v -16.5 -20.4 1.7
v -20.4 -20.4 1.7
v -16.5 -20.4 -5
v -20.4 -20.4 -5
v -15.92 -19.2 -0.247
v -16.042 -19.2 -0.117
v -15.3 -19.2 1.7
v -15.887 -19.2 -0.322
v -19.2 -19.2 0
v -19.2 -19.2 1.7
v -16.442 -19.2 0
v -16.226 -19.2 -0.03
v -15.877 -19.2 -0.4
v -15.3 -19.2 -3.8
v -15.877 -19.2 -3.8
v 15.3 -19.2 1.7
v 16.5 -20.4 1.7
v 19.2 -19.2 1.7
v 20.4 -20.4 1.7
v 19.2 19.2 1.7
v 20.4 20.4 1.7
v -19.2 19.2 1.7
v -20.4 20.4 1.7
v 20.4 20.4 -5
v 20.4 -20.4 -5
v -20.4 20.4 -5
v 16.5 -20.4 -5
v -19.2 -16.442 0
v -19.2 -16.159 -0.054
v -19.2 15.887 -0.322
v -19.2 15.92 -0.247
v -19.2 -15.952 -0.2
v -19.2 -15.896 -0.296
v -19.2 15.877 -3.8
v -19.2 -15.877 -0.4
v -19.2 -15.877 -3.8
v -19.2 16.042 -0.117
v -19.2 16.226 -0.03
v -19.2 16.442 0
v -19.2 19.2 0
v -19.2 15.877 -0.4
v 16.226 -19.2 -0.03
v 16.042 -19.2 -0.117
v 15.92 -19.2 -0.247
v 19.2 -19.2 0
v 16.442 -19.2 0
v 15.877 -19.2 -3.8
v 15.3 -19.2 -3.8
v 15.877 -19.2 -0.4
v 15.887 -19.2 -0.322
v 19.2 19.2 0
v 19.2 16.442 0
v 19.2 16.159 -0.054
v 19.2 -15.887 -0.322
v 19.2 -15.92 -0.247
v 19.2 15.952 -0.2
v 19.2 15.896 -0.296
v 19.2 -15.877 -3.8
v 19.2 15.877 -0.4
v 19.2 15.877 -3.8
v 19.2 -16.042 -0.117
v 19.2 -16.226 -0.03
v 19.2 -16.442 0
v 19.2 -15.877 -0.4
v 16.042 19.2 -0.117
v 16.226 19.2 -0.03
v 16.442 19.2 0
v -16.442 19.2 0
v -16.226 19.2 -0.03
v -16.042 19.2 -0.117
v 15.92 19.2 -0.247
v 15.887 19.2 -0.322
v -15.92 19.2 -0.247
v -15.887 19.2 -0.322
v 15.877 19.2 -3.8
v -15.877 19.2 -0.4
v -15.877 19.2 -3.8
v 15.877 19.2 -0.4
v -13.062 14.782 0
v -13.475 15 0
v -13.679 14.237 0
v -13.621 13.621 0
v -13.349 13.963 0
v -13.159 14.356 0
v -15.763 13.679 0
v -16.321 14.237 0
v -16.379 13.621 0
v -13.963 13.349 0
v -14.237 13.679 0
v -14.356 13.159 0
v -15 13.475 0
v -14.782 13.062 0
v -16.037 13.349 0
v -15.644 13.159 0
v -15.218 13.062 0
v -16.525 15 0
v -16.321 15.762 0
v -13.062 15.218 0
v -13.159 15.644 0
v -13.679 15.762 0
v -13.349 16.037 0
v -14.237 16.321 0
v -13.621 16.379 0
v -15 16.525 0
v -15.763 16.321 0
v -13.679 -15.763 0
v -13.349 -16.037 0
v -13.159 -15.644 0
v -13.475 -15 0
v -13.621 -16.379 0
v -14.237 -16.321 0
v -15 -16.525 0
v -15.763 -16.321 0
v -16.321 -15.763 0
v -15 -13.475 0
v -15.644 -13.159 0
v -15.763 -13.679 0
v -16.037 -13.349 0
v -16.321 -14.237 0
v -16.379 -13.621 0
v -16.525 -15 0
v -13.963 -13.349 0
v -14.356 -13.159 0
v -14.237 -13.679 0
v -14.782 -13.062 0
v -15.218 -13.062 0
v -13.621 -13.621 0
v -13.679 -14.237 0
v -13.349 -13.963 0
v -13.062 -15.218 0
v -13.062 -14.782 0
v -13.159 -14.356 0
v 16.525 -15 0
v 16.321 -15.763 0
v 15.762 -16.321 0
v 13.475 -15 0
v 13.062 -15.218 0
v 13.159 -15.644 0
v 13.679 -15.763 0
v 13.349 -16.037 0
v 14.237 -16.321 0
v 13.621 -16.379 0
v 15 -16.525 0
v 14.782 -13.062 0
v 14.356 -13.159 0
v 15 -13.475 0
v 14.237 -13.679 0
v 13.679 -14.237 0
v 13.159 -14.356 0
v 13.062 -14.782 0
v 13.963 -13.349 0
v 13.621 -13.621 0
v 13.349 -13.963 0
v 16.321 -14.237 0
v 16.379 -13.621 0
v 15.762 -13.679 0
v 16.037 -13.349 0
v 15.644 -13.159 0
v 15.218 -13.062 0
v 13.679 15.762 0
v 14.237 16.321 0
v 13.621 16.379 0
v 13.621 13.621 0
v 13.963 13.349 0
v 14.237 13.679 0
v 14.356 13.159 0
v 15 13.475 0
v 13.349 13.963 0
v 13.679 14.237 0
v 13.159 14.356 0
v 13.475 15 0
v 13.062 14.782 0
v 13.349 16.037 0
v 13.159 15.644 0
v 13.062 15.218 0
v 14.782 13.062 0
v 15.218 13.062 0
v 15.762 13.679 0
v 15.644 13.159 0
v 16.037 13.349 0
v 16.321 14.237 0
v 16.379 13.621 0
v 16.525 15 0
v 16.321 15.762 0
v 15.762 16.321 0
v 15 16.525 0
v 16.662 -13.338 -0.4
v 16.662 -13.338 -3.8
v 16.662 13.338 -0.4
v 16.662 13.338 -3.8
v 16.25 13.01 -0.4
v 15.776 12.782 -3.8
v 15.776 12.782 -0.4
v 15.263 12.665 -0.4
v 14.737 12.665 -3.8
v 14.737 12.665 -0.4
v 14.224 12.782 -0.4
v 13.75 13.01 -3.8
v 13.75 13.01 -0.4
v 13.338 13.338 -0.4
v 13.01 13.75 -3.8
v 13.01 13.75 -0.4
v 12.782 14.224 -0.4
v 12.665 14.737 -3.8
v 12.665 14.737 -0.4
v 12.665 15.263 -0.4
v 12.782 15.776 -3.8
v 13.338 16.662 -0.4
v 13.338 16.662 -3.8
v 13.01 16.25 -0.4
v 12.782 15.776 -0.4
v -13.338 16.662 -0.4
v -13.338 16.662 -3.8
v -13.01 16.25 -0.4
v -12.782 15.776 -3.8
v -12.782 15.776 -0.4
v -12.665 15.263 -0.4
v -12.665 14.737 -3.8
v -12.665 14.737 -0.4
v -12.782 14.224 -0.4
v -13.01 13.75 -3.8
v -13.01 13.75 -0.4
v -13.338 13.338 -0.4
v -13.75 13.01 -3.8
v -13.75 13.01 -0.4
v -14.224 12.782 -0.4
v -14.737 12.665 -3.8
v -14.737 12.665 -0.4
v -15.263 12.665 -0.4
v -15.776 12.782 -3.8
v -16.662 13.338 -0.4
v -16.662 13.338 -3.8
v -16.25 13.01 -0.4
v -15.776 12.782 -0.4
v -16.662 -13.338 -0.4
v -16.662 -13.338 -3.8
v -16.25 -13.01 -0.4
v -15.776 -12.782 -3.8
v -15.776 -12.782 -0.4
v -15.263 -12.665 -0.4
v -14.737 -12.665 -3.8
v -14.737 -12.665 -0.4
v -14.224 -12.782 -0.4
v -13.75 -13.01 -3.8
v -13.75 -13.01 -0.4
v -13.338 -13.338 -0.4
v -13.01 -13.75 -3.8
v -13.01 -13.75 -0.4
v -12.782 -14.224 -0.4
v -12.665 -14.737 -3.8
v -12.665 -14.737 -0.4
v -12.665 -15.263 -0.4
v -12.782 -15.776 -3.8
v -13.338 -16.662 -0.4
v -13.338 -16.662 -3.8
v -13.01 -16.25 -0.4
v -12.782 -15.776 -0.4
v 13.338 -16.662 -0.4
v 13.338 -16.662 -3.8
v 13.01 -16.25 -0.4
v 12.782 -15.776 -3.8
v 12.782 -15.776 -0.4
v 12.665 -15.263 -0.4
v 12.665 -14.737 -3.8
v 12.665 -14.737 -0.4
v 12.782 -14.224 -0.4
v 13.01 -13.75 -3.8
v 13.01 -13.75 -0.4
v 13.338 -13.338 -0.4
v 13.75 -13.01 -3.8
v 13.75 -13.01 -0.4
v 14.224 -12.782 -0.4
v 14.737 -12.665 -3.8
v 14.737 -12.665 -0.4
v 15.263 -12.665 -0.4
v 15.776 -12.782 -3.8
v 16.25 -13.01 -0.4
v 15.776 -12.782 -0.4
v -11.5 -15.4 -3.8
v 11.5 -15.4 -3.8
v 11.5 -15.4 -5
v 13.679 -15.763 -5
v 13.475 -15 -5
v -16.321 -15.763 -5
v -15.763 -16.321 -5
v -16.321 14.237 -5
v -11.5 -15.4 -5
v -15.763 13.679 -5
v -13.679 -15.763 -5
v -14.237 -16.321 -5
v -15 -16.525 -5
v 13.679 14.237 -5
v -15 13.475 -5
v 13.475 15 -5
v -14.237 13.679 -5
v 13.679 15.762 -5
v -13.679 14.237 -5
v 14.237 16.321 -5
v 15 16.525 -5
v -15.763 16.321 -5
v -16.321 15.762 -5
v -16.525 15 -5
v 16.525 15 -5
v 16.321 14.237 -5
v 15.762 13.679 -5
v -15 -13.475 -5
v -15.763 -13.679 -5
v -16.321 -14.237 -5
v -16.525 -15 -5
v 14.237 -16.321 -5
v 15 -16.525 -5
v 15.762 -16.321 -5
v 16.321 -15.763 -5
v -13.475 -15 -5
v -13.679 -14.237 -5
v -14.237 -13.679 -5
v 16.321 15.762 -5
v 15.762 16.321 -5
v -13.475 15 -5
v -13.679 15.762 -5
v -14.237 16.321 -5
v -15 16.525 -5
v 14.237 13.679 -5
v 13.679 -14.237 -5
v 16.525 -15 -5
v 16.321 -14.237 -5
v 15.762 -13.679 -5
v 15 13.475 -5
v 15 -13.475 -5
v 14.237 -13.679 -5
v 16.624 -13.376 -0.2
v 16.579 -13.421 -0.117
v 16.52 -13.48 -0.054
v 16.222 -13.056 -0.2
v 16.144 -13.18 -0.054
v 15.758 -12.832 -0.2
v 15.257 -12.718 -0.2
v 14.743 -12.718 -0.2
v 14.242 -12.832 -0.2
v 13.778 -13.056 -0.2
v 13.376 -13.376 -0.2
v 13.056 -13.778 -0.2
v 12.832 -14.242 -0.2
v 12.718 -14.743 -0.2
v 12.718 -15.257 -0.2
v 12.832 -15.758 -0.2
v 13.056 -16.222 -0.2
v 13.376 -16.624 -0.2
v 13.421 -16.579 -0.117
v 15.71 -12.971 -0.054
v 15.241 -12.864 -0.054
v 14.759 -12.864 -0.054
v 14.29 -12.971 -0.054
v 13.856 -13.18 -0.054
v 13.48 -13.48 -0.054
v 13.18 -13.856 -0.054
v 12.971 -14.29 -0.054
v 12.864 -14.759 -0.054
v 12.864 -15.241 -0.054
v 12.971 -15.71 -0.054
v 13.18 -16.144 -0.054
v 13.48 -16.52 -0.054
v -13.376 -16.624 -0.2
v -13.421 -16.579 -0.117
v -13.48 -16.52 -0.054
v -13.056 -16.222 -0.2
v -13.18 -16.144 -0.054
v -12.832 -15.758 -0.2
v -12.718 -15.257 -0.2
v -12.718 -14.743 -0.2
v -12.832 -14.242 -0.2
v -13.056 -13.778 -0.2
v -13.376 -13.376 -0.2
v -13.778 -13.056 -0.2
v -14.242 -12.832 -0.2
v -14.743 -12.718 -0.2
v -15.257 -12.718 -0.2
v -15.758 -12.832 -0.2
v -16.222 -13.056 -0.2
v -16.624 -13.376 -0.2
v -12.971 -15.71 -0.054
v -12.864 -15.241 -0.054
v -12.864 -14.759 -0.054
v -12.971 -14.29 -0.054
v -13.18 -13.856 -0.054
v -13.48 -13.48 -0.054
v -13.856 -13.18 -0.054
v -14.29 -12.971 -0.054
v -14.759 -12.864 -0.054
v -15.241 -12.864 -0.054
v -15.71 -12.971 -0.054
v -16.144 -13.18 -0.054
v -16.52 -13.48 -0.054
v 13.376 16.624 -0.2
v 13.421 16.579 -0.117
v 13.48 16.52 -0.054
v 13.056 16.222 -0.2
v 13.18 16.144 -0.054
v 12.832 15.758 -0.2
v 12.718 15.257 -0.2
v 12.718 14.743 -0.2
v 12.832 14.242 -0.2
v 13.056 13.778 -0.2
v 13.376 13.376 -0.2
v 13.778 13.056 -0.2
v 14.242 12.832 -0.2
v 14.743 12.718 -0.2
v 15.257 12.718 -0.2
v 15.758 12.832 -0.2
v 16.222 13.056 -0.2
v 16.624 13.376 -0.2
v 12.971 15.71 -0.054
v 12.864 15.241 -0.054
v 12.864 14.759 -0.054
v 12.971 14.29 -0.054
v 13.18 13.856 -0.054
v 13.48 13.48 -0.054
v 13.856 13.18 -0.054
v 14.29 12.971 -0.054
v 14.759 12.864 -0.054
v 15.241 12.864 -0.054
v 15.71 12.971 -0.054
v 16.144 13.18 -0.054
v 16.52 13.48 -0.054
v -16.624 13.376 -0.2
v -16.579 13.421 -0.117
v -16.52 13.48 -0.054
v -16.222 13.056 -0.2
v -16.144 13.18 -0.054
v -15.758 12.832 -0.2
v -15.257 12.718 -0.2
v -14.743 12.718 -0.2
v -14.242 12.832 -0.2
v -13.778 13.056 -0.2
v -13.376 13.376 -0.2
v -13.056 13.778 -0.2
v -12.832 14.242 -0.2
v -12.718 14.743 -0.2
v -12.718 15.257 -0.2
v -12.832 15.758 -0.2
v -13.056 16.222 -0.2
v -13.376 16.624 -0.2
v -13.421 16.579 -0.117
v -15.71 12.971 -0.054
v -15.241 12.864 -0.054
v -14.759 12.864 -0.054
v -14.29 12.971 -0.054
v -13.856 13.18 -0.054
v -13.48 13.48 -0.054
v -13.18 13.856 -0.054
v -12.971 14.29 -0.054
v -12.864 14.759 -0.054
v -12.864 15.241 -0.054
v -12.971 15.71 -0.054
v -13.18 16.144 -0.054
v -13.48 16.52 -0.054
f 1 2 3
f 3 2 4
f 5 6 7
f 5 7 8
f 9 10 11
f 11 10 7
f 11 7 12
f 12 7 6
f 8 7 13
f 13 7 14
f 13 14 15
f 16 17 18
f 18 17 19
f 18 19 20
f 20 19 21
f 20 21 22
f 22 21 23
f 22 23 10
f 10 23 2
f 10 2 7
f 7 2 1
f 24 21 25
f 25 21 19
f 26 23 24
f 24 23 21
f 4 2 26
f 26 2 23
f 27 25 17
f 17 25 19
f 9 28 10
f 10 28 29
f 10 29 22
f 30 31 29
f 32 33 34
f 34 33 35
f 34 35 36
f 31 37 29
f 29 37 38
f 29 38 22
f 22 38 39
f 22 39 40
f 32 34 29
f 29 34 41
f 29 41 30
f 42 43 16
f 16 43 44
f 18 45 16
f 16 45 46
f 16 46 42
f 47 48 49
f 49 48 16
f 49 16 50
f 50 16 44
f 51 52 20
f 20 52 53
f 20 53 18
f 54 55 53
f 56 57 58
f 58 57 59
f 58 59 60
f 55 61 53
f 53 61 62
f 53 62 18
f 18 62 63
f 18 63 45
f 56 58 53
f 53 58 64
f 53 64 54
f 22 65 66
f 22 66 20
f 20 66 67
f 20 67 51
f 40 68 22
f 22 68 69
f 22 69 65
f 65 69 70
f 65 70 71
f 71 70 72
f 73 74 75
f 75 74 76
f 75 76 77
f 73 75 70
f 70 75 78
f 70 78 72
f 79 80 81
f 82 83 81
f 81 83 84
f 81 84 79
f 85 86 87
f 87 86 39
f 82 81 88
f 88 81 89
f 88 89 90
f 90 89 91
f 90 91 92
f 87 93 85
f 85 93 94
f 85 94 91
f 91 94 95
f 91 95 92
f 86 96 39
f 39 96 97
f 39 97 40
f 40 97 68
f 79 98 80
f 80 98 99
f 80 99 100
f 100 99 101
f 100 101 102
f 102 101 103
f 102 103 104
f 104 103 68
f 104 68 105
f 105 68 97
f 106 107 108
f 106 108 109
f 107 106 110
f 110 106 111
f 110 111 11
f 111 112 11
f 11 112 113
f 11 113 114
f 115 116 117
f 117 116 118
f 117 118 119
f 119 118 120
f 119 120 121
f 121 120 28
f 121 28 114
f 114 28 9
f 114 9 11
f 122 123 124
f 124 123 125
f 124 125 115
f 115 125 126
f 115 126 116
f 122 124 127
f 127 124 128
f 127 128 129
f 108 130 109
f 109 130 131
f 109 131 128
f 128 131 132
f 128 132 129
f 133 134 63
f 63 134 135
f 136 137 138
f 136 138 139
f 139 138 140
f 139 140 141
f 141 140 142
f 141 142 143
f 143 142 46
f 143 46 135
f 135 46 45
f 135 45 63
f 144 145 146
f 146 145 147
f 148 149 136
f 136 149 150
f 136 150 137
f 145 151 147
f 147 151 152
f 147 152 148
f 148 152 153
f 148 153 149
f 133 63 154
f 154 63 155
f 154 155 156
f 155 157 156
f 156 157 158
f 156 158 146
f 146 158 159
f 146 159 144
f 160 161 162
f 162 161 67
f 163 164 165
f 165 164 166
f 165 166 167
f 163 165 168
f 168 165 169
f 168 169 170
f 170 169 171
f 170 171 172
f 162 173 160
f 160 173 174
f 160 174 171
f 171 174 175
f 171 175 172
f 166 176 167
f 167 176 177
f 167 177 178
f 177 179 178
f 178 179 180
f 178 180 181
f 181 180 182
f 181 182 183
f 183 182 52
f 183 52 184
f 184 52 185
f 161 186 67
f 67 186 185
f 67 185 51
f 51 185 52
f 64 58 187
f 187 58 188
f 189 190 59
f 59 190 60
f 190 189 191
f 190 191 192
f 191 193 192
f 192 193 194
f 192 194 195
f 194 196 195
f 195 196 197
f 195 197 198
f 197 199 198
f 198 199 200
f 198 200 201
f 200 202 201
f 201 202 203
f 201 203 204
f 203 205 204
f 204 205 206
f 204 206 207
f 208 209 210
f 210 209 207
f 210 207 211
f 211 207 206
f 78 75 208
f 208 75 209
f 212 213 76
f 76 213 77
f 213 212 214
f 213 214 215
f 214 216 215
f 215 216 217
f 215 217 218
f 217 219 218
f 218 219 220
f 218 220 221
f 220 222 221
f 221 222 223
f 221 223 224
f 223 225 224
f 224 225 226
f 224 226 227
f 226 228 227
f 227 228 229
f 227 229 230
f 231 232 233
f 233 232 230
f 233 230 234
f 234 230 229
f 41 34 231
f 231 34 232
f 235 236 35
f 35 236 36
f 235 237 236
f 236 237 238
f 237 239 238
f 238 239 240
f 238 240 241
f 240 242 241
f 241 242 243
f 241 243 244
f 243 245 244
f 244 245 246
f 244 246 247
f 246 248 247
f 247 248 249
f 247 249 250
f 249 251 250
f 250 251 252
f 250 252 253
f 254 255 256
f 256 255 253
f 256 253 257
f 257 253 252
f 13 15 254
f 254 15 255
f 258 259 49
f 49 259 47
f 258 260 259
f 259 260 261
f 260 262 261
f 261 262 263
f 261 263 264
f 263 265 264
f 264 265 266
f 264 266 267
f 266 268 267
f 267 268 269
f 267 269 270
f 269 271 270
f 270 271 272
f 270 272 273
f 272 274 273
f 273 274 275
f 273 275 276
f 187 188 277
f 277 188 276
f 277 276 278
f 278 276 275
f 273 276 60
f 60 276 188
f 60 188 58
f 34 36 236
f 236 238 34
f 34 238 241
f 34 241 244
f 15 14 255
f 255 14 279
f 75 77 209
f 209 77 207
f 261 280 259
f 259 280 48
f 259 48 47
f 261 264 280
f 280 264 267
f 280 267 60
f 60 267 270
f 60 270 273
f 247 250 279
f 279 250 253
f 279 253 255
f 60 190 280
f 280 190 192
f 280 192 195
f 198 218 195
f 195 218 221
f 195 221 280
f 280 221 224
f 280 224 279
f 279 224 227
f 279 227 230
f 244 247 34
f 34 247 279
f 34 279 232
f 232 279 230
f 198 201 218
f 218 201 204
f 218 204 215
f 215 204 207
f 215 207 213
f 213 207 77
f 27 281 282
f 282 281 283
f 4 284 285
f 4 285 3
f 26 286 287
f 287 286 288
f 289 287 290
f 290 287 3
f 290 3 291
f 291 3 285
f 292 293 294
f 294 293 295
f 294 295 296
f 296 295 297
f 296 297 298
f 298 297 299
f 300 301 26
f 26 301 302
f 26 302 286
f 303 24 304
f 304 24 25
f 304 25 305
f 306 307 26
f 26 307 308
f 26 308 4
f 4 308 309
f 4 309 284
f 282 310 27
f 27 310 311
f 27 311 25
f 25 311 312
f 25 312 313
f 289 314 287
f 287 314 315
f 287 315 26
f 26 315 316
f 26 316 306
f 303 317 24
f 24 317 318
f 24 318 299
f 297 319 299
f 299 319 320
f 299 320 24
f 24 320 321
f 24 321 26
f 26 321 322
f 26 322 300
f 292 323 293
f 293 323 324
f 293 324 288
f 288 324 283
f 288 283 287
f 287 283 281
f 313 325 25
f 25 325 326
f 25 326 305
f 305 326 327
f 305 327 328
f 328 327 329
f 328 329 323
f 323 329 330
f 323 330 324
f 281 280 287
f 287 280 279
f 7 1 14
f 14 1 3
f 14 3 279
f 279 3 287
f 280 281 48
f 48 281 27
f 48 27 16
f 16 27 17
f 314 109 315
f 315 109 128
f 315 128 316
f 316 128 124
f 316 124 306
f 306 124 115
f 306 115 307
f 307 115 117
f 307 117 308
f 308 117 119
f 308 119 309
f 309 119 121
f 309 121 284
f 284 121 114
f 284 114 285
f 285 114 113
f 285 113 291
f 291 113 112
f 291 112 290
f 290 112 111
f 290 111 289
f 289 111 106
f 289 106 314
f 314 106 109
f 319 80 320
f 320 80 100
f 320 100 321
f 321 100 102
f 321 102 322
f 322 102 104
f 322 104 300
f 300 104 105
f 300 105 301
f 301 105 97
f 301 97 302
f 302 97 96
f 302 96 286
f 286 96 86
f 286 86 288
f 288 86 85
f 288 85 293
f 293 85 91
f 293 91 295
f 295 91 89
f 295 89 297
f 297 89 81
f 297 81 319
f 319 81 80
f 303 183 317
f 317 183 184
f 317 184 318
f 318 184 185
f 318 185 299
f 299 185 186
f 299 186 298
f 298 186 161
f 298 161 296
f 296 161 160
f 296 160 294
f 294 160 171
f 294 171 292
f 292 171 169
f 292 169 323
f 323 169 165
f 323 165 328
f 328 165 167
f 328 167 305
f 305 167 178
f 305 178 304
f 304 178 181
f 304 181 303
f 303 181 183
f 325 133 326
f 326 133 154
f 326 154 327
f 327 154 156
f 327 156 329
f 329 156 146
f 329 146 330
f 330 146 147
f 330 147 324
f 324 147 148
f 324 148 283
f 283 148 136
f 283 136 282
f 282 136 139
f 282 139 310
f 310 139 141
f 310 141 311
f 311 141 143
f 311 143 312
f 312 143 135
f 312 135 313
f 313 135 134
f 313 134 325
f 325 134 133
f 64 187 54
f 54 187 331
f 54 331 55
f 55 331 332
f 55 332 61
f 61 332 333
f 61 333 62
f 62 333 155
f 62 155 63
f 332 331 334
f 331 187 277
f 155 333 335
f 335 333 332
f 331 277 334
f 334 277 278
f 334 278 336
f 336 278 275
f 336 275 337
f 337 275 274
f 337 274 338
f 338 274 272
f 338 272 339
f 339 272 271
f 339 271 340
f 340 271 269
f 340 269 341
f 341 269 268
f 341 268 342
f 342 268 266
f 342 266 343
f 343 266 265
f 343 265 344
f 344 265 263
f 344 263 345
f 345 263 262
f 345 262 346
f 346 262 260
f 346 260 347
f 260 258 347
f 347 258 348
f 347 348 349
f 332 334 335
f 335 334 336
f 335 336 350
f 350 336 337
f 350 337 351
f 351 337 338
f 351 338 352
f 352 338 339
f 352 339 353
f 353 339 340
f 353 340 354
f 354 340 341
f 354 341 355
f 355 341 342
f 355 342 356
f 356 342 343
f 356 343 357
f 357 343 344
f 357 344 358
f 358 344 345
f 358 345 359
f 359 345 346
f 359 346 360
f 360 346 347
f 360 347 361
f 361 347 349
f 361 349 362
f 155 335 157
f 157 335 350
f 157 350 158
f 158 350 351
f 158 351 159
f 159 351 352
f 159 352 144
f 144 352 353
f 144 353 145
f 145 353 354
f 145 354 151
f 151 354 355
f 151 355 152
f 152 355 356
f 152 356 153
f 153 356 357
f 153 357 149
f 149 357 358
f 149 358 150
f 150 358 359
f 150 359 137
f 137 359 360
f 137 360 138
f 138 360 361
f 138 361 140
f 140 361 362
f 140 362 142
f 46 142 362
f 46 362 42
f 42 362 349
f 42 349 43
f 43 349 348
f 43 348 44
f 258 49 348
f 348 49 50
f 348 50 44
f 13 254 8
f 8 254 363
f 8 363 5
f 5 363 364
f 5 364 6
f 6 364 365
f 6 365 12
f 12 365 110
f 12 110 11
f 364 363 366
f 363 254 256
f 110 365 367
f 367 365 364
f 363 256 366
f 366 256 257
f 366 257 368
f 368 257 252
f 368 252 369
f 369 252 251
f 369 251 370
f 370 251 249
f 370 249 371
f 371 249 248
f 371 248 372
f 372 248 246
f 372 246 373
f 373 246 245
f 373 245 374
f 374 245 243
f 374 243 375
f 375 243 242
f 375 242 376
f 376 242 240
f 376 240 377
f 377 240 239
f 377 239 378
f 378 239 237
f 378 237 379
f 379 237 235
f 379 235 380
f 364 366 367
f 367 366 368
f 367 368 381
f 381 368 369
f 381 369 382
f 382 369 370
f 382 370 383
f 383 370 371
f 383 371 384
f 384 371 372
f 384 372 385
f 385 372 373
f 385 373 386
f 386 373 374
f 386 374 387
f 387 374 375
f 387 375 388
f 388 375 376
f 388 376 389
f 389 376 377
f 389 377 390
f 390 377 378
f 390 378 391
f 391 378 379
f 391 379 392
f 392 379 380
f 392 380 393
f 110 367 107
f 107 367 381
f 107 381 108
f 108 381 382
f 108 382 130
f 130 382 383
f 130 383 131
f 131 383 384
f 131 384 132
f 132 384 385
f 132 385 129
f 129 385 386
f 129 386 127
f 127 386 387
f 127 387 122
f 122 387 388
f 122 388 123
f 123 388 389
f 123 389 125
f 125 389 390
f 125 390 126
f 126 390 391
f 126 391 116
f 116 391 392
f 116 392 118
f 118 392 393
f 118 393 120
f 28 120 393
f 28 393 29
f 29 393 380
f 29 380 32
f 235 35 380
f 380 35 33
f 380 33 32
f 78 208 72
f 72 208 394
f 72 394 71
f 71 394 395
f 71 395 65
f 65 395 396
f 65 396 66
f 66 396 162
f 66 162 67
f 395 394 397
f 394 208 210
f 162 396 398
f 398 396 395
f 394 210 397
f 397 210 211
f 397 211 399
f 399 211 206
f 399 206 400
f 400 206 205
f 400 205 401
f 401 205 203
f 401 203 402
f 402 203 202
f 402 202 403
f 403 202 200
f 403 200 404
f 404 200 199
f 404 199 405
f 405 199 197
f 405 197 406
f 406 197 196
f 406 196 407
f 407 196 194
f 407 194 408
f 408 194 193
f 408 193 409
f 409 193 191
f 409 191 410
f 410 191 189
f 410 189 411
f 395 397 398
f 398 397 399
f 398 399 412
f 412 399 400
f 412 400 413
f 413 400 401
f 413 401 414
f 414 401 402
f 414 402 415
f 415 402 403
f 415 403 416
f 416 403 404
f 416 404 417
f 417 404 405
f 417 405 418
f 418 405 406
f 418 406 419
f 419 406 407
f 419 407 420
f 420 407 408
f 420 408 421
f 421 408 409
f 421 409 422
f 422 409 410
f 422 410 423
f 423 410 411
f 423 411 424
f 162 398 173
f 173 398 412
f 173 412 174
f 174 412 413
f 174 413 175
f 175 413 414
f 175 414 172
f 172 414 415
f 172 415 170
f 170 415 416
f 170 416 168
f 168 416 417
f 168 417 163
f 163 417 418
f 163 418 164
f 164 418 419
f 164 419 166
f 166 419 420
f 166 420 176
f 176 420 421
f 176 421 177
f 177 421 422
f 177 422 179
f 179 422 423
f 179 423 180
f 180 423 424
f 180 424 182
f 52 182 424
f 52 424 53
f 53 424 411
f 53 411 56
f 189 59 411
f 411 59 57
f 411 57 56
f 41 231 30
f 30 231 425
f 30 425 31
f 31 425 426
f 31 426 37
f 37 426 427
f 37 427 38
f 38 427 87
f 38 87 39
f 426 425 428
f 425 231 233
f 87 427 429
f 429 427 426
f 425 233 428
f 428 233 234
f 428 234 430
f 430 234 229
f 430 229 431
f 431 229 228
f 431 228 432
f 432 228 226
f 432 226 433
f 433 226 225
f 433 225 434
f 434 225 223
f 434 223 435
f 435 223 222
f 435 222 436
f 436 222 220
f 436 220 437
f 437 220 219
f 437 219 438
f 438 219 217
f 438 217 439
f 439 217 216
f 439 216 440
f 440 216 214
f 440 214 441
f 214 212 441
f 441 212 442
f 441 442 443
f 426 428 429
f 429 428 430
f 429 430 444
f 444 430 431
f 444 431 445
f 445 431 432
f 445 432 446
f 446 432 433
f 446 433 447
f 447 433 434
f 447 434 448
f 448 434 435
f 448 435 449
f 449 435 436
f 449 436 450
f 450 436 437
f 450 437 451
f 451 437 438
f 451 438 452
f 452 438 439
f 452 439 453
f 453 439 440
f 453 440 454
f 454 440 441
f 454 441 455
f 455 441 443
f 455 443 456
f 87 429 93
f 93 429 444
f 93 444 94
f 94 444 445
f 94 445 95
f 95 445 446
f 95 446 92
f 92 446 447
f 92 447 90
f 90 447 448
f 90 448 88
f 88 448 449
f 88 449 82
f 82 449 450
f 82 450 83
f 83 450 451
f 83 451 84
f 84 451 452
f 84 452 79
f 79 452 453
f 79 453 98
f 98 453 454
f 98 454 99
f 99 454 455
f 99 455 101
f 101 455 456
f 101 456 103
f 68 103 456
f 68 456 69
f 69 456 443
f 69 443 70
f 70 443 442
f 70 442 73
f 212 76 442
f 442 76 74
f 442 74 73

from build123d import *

# Parameters (mm, degrees)
SKETCH1_W               = 40.8
SKETCH1_H               = 40.8
SKETCH1_W_2             = 38.4
SKETCH1_H_2             = 38.4
BOSS_EXTRUDE1_DEPTH     = 1.7
SKETCH2_W               = 40.8
SKETCH2_H               = 40.8
SKETCH2_R               = 2.35
BOSS_EXTRUDE2_DEPTH     = 3.8
SKETCH3_W               = 40.8
SKETCH3_H               = 40.8
BOSS_EXTRUDE3_DEPTH     = 1.2
SKETCH4_W               = 23
SKETCH4_H               = 10
CUT_EXTRUDE1_DEPTH      = 30.617731176
CUT_EXTRUDE2_DEPTH      = 30.369542046
CUT_EXTRUDE2_DEPTH_BACK = 30.369542046
SKETCH6_R               = 1.525
CUT_EXTRUDE3_DEPTH      = 30.280027322
FILLET1_R               = 0.4


with BuildPart() as part:
    # Sketch1 → Boss-Extrude1 (new body)
    with BuildSketch(Plane.XY):
        Rectangle(SKETCH1_W, SKETCH1_H)
        Rectangle(SKETCH1_W_2, SKETCH1_H_2, mode=Mode.SUBTRACT)
    extrude(amount=BOSS_EXTRUDE1_DEPTH)

    # Sketch2 → Boss-Extrude2 (add)
    # profile 1 of 9: a face of its own
    with BuildSketch(Plane(origin=(0, 0, 0), x_dir=(-1, 0, 0), z_dir=(0, 0, -1))):
        Rectangle(SKETCH2_W, SKETCH2_H)
        Polygon((-19.2, -15.876598128), (-19.2, 15.876598128), (-19.2, 19.2), (-15.876598128, 19.2), (15.876598128, 19.2), (19.2, 19.2), (19.2, 15.876598128), (19.2, -15.876598128), (19.2, -19.2), (15.876598128, -19.2), (-15.876598128, -19.2), (-19.2, -19.2), align=None, mode=Mode.SUBTRACT)
    # profile 2 of 9: a face of its own
    with BuildSketch(Plane(origin=(0, 0, 0), x_dir=(-1, 0, 0), z_dir=(0, 0, -1))):
        with BuildLine():
            Line((-19.2, 15.876598128), (-16.661700936, 13.338299064))
            ThreePointArc((-16.661700936, 13.338299064), (-16.661700936, 16.661700936), (-13.338299064, 16.661700936))
            Line((-13.338299064, 16.661700936), (-15.876598128, 19.2))
            Line((-15.876598128, 19.2), (-19.2, 19.2))
            Line((-19.2, 19.2), (-19.2, 15.876598128))
        make_face()
    # profile 3 of 9: a face of its own
    with BuildSketch(Plane(origin=(0, 0, 0), x_dir=(-1, 0, 0), z_dir=(0, 0, -1))):
        with BuildLine():
            Line((19.2, 19.2), (15.876598128, 19.2))
            Line((15.876598128, 19.2), (13.338299064, 16.661700936))
            ThreePointArc((13.338299064, 16.661700936), (15.899306066, 17.171116901), (17.35, 15))
            ThreePointArc((17.35, 15), (17.171116901, 14.100693934), (16.661700936, 13.338299064))
            Line((16.661700936, 13.338299064), (19.2, 15.876598128))
            Line((19.2, 15.876598128), (19.2, 19.2))
        make_face()
    # profile 4 of 9: a face of its own
    with BuildSketch(Plane(origin=(0, 0, 0), x_dir=(-1, 0, 0), z_dir=(0, 0, -1))):
        with Locations((15, 15)):
            Circle(SKETCH2_R)
    # profile 5 of 9: a face of its own
    with BuildSketch(Plane(origin=(0, 0, 0), x_dir=(-1, 0, 0), z_dir=(0, 0, -1))):
        with Locations((-15, 15)):
            Circle(SKETCH2_R)
    # profile 6 of 9: a face of its own
    with BuildSketch(Plane(origin=(0, 0, 0), x_dir=(-1, 0, 0), z_dir=(0, 0, -1))):
        with Locations((15, -15)):
            Circle(SKETCH2_R)
    # profile 7 of 9: a face of its own
    with BuildSketch(Plane(origin=(0, 0, 0), x_dir=(-1, 0, 0), z_dir=(0, 0, -1))):
        with BuildLine():
            Line((13.338299064, -16.661700936), (15.876598128, -19.2))
            Line((15.876598128, -19.2), (19.2, -19.2))
            Line((19.2, -19.2), (19.2, -15.876598128))
            Line((19.2, -15.876598128), (16.661700936, -13.338299064))
            ThreePointArc((16.661700936, -13.338299064), (17.171116901, -14.100693934), (17.35, -15))
            ThreePointArc((17.35, -15), (15.899306066, -17.171116901), (13.338299064, -16.661700936))
        make_face()
    # profile 8 of 9: a face of its own
    with BuildSketch(Plane(origin=(0, 0, 0), x_dir=(-1, 0, 0), z_dir=(0, 0, -1))):
        with Locations((-15, -15)):
            Circle(SKETCH2_R)
    # profile 9 of 9: a face of its own
    with BuildSketch(Plane(origin=(0, 0, 0), x_dir=(-1, 0, 0), z_dir=(0, 0, -1))):
        with BuildLine():
            Line((-16.661700936, -13.338299064), (-19.2, -15.876598128))
            Line((-19.2, -15.876598128), (-19.2, -19.2))
            Line((-19.2, -19.2), (-15.876598128, -19.2))
            Line((-15.876598128, -19.2), (-13.338299064, -16.661700936))
            ThreePointArc((-13.338299064, -16.661700936), (-16.661700936, -16.661700936), (-16.661700936, -13.338299064))
        make_face()
    extrude(amount=BOSS_EXTRUDE2_DEPTH)

    # Sketch3 → Boss-Extrude3 (add)
    with BuildSketch(Plane(origin=(0, 0, -3.8), x_dir=(-1, 0, 0), z_dir=(0, 0, -1))):
        Rectangle(SKETCH3_W, SKETCH3_H)
    extrude(amount=BOSS_EXTRUDE3_DEPTH)

    # Sketch4 → Cut-Extrude1 (cut, through all)
    with BuildSketch(Plane(origin=(0, 0, -5), x_dir=(-1, 0, 0), z_dir=(0, 0, -1))):
        with Locations((0, -20.4)):
            Rectangle(SKETCH4_W, SKETCH4_H)
    extrude(amount=-CUT_EXTRUDE1_DEPTH, mode=Mode.SUBTRACT)

    # Sketch5 → Cut-Extrude2 (cut, two sides: drawn at the far end of the back side and taken through both)
    with BuildSketch(Plane.XY.offset(-3.8).offset(-CUT_EXTRUDE2_DEPTH_BACK)):
        Polygon((-11.5, -15.4), (-17.658402739, -21.558402739), (17.658402739, -21.558402739), (11.5, -15.4), align=None)
    extrude(amount=CUT_EXTRUDE2_DEPTH + CUT_EXTRUDE2_DEPTH_BACK, mode=Mode.SUBTRACT)

    # Sketch6 → Cut-Extrude3 (cut, through all)
    with BuildSketch(Plane.XY):
        with Locations((-15, -15)):
            Circle(SKETCH6_R)
        with Locations((-15, 15)):
            Circle(SKETCH6_R)
        with Locations((15, 15)):
            Circle(SKETCH6_R)
        with Locations((15, -15)):
            Circle(SKETCH6_R)
    extrude(amount=-CUT_EXTRUDE3_DEPTH, mode=Mode.SUBTRACT)

    # Fillet1
    fillet1_edges = [part.edges().sort_by_distance(p)[0] for p in [
        (-14.607448596, 17.930850468, 0),
        (-17.930850468, -14.607448596, 0),
        (14.607448596, -17.930850468, 0),
        (17.930850468, 14.607448596, 0),
        (17.930850468, -14.607448596, 0),
        (13.338299064, 13.338299064, 0),
        (14.607448596, 17.930850468, 0),
        (-13.338299064, 13.338299064, 0),
        (-17.930850468, 14.607448596, 0),
        (-13.338299064, -13.338299064, 0),
        (-14.607448596, -17.930850468, 0),
        (13.338299064, -13.338299064, 0),
    ]]
    fillet(fillet1_edges, radius=FILLET1_R)


solid = part.part
